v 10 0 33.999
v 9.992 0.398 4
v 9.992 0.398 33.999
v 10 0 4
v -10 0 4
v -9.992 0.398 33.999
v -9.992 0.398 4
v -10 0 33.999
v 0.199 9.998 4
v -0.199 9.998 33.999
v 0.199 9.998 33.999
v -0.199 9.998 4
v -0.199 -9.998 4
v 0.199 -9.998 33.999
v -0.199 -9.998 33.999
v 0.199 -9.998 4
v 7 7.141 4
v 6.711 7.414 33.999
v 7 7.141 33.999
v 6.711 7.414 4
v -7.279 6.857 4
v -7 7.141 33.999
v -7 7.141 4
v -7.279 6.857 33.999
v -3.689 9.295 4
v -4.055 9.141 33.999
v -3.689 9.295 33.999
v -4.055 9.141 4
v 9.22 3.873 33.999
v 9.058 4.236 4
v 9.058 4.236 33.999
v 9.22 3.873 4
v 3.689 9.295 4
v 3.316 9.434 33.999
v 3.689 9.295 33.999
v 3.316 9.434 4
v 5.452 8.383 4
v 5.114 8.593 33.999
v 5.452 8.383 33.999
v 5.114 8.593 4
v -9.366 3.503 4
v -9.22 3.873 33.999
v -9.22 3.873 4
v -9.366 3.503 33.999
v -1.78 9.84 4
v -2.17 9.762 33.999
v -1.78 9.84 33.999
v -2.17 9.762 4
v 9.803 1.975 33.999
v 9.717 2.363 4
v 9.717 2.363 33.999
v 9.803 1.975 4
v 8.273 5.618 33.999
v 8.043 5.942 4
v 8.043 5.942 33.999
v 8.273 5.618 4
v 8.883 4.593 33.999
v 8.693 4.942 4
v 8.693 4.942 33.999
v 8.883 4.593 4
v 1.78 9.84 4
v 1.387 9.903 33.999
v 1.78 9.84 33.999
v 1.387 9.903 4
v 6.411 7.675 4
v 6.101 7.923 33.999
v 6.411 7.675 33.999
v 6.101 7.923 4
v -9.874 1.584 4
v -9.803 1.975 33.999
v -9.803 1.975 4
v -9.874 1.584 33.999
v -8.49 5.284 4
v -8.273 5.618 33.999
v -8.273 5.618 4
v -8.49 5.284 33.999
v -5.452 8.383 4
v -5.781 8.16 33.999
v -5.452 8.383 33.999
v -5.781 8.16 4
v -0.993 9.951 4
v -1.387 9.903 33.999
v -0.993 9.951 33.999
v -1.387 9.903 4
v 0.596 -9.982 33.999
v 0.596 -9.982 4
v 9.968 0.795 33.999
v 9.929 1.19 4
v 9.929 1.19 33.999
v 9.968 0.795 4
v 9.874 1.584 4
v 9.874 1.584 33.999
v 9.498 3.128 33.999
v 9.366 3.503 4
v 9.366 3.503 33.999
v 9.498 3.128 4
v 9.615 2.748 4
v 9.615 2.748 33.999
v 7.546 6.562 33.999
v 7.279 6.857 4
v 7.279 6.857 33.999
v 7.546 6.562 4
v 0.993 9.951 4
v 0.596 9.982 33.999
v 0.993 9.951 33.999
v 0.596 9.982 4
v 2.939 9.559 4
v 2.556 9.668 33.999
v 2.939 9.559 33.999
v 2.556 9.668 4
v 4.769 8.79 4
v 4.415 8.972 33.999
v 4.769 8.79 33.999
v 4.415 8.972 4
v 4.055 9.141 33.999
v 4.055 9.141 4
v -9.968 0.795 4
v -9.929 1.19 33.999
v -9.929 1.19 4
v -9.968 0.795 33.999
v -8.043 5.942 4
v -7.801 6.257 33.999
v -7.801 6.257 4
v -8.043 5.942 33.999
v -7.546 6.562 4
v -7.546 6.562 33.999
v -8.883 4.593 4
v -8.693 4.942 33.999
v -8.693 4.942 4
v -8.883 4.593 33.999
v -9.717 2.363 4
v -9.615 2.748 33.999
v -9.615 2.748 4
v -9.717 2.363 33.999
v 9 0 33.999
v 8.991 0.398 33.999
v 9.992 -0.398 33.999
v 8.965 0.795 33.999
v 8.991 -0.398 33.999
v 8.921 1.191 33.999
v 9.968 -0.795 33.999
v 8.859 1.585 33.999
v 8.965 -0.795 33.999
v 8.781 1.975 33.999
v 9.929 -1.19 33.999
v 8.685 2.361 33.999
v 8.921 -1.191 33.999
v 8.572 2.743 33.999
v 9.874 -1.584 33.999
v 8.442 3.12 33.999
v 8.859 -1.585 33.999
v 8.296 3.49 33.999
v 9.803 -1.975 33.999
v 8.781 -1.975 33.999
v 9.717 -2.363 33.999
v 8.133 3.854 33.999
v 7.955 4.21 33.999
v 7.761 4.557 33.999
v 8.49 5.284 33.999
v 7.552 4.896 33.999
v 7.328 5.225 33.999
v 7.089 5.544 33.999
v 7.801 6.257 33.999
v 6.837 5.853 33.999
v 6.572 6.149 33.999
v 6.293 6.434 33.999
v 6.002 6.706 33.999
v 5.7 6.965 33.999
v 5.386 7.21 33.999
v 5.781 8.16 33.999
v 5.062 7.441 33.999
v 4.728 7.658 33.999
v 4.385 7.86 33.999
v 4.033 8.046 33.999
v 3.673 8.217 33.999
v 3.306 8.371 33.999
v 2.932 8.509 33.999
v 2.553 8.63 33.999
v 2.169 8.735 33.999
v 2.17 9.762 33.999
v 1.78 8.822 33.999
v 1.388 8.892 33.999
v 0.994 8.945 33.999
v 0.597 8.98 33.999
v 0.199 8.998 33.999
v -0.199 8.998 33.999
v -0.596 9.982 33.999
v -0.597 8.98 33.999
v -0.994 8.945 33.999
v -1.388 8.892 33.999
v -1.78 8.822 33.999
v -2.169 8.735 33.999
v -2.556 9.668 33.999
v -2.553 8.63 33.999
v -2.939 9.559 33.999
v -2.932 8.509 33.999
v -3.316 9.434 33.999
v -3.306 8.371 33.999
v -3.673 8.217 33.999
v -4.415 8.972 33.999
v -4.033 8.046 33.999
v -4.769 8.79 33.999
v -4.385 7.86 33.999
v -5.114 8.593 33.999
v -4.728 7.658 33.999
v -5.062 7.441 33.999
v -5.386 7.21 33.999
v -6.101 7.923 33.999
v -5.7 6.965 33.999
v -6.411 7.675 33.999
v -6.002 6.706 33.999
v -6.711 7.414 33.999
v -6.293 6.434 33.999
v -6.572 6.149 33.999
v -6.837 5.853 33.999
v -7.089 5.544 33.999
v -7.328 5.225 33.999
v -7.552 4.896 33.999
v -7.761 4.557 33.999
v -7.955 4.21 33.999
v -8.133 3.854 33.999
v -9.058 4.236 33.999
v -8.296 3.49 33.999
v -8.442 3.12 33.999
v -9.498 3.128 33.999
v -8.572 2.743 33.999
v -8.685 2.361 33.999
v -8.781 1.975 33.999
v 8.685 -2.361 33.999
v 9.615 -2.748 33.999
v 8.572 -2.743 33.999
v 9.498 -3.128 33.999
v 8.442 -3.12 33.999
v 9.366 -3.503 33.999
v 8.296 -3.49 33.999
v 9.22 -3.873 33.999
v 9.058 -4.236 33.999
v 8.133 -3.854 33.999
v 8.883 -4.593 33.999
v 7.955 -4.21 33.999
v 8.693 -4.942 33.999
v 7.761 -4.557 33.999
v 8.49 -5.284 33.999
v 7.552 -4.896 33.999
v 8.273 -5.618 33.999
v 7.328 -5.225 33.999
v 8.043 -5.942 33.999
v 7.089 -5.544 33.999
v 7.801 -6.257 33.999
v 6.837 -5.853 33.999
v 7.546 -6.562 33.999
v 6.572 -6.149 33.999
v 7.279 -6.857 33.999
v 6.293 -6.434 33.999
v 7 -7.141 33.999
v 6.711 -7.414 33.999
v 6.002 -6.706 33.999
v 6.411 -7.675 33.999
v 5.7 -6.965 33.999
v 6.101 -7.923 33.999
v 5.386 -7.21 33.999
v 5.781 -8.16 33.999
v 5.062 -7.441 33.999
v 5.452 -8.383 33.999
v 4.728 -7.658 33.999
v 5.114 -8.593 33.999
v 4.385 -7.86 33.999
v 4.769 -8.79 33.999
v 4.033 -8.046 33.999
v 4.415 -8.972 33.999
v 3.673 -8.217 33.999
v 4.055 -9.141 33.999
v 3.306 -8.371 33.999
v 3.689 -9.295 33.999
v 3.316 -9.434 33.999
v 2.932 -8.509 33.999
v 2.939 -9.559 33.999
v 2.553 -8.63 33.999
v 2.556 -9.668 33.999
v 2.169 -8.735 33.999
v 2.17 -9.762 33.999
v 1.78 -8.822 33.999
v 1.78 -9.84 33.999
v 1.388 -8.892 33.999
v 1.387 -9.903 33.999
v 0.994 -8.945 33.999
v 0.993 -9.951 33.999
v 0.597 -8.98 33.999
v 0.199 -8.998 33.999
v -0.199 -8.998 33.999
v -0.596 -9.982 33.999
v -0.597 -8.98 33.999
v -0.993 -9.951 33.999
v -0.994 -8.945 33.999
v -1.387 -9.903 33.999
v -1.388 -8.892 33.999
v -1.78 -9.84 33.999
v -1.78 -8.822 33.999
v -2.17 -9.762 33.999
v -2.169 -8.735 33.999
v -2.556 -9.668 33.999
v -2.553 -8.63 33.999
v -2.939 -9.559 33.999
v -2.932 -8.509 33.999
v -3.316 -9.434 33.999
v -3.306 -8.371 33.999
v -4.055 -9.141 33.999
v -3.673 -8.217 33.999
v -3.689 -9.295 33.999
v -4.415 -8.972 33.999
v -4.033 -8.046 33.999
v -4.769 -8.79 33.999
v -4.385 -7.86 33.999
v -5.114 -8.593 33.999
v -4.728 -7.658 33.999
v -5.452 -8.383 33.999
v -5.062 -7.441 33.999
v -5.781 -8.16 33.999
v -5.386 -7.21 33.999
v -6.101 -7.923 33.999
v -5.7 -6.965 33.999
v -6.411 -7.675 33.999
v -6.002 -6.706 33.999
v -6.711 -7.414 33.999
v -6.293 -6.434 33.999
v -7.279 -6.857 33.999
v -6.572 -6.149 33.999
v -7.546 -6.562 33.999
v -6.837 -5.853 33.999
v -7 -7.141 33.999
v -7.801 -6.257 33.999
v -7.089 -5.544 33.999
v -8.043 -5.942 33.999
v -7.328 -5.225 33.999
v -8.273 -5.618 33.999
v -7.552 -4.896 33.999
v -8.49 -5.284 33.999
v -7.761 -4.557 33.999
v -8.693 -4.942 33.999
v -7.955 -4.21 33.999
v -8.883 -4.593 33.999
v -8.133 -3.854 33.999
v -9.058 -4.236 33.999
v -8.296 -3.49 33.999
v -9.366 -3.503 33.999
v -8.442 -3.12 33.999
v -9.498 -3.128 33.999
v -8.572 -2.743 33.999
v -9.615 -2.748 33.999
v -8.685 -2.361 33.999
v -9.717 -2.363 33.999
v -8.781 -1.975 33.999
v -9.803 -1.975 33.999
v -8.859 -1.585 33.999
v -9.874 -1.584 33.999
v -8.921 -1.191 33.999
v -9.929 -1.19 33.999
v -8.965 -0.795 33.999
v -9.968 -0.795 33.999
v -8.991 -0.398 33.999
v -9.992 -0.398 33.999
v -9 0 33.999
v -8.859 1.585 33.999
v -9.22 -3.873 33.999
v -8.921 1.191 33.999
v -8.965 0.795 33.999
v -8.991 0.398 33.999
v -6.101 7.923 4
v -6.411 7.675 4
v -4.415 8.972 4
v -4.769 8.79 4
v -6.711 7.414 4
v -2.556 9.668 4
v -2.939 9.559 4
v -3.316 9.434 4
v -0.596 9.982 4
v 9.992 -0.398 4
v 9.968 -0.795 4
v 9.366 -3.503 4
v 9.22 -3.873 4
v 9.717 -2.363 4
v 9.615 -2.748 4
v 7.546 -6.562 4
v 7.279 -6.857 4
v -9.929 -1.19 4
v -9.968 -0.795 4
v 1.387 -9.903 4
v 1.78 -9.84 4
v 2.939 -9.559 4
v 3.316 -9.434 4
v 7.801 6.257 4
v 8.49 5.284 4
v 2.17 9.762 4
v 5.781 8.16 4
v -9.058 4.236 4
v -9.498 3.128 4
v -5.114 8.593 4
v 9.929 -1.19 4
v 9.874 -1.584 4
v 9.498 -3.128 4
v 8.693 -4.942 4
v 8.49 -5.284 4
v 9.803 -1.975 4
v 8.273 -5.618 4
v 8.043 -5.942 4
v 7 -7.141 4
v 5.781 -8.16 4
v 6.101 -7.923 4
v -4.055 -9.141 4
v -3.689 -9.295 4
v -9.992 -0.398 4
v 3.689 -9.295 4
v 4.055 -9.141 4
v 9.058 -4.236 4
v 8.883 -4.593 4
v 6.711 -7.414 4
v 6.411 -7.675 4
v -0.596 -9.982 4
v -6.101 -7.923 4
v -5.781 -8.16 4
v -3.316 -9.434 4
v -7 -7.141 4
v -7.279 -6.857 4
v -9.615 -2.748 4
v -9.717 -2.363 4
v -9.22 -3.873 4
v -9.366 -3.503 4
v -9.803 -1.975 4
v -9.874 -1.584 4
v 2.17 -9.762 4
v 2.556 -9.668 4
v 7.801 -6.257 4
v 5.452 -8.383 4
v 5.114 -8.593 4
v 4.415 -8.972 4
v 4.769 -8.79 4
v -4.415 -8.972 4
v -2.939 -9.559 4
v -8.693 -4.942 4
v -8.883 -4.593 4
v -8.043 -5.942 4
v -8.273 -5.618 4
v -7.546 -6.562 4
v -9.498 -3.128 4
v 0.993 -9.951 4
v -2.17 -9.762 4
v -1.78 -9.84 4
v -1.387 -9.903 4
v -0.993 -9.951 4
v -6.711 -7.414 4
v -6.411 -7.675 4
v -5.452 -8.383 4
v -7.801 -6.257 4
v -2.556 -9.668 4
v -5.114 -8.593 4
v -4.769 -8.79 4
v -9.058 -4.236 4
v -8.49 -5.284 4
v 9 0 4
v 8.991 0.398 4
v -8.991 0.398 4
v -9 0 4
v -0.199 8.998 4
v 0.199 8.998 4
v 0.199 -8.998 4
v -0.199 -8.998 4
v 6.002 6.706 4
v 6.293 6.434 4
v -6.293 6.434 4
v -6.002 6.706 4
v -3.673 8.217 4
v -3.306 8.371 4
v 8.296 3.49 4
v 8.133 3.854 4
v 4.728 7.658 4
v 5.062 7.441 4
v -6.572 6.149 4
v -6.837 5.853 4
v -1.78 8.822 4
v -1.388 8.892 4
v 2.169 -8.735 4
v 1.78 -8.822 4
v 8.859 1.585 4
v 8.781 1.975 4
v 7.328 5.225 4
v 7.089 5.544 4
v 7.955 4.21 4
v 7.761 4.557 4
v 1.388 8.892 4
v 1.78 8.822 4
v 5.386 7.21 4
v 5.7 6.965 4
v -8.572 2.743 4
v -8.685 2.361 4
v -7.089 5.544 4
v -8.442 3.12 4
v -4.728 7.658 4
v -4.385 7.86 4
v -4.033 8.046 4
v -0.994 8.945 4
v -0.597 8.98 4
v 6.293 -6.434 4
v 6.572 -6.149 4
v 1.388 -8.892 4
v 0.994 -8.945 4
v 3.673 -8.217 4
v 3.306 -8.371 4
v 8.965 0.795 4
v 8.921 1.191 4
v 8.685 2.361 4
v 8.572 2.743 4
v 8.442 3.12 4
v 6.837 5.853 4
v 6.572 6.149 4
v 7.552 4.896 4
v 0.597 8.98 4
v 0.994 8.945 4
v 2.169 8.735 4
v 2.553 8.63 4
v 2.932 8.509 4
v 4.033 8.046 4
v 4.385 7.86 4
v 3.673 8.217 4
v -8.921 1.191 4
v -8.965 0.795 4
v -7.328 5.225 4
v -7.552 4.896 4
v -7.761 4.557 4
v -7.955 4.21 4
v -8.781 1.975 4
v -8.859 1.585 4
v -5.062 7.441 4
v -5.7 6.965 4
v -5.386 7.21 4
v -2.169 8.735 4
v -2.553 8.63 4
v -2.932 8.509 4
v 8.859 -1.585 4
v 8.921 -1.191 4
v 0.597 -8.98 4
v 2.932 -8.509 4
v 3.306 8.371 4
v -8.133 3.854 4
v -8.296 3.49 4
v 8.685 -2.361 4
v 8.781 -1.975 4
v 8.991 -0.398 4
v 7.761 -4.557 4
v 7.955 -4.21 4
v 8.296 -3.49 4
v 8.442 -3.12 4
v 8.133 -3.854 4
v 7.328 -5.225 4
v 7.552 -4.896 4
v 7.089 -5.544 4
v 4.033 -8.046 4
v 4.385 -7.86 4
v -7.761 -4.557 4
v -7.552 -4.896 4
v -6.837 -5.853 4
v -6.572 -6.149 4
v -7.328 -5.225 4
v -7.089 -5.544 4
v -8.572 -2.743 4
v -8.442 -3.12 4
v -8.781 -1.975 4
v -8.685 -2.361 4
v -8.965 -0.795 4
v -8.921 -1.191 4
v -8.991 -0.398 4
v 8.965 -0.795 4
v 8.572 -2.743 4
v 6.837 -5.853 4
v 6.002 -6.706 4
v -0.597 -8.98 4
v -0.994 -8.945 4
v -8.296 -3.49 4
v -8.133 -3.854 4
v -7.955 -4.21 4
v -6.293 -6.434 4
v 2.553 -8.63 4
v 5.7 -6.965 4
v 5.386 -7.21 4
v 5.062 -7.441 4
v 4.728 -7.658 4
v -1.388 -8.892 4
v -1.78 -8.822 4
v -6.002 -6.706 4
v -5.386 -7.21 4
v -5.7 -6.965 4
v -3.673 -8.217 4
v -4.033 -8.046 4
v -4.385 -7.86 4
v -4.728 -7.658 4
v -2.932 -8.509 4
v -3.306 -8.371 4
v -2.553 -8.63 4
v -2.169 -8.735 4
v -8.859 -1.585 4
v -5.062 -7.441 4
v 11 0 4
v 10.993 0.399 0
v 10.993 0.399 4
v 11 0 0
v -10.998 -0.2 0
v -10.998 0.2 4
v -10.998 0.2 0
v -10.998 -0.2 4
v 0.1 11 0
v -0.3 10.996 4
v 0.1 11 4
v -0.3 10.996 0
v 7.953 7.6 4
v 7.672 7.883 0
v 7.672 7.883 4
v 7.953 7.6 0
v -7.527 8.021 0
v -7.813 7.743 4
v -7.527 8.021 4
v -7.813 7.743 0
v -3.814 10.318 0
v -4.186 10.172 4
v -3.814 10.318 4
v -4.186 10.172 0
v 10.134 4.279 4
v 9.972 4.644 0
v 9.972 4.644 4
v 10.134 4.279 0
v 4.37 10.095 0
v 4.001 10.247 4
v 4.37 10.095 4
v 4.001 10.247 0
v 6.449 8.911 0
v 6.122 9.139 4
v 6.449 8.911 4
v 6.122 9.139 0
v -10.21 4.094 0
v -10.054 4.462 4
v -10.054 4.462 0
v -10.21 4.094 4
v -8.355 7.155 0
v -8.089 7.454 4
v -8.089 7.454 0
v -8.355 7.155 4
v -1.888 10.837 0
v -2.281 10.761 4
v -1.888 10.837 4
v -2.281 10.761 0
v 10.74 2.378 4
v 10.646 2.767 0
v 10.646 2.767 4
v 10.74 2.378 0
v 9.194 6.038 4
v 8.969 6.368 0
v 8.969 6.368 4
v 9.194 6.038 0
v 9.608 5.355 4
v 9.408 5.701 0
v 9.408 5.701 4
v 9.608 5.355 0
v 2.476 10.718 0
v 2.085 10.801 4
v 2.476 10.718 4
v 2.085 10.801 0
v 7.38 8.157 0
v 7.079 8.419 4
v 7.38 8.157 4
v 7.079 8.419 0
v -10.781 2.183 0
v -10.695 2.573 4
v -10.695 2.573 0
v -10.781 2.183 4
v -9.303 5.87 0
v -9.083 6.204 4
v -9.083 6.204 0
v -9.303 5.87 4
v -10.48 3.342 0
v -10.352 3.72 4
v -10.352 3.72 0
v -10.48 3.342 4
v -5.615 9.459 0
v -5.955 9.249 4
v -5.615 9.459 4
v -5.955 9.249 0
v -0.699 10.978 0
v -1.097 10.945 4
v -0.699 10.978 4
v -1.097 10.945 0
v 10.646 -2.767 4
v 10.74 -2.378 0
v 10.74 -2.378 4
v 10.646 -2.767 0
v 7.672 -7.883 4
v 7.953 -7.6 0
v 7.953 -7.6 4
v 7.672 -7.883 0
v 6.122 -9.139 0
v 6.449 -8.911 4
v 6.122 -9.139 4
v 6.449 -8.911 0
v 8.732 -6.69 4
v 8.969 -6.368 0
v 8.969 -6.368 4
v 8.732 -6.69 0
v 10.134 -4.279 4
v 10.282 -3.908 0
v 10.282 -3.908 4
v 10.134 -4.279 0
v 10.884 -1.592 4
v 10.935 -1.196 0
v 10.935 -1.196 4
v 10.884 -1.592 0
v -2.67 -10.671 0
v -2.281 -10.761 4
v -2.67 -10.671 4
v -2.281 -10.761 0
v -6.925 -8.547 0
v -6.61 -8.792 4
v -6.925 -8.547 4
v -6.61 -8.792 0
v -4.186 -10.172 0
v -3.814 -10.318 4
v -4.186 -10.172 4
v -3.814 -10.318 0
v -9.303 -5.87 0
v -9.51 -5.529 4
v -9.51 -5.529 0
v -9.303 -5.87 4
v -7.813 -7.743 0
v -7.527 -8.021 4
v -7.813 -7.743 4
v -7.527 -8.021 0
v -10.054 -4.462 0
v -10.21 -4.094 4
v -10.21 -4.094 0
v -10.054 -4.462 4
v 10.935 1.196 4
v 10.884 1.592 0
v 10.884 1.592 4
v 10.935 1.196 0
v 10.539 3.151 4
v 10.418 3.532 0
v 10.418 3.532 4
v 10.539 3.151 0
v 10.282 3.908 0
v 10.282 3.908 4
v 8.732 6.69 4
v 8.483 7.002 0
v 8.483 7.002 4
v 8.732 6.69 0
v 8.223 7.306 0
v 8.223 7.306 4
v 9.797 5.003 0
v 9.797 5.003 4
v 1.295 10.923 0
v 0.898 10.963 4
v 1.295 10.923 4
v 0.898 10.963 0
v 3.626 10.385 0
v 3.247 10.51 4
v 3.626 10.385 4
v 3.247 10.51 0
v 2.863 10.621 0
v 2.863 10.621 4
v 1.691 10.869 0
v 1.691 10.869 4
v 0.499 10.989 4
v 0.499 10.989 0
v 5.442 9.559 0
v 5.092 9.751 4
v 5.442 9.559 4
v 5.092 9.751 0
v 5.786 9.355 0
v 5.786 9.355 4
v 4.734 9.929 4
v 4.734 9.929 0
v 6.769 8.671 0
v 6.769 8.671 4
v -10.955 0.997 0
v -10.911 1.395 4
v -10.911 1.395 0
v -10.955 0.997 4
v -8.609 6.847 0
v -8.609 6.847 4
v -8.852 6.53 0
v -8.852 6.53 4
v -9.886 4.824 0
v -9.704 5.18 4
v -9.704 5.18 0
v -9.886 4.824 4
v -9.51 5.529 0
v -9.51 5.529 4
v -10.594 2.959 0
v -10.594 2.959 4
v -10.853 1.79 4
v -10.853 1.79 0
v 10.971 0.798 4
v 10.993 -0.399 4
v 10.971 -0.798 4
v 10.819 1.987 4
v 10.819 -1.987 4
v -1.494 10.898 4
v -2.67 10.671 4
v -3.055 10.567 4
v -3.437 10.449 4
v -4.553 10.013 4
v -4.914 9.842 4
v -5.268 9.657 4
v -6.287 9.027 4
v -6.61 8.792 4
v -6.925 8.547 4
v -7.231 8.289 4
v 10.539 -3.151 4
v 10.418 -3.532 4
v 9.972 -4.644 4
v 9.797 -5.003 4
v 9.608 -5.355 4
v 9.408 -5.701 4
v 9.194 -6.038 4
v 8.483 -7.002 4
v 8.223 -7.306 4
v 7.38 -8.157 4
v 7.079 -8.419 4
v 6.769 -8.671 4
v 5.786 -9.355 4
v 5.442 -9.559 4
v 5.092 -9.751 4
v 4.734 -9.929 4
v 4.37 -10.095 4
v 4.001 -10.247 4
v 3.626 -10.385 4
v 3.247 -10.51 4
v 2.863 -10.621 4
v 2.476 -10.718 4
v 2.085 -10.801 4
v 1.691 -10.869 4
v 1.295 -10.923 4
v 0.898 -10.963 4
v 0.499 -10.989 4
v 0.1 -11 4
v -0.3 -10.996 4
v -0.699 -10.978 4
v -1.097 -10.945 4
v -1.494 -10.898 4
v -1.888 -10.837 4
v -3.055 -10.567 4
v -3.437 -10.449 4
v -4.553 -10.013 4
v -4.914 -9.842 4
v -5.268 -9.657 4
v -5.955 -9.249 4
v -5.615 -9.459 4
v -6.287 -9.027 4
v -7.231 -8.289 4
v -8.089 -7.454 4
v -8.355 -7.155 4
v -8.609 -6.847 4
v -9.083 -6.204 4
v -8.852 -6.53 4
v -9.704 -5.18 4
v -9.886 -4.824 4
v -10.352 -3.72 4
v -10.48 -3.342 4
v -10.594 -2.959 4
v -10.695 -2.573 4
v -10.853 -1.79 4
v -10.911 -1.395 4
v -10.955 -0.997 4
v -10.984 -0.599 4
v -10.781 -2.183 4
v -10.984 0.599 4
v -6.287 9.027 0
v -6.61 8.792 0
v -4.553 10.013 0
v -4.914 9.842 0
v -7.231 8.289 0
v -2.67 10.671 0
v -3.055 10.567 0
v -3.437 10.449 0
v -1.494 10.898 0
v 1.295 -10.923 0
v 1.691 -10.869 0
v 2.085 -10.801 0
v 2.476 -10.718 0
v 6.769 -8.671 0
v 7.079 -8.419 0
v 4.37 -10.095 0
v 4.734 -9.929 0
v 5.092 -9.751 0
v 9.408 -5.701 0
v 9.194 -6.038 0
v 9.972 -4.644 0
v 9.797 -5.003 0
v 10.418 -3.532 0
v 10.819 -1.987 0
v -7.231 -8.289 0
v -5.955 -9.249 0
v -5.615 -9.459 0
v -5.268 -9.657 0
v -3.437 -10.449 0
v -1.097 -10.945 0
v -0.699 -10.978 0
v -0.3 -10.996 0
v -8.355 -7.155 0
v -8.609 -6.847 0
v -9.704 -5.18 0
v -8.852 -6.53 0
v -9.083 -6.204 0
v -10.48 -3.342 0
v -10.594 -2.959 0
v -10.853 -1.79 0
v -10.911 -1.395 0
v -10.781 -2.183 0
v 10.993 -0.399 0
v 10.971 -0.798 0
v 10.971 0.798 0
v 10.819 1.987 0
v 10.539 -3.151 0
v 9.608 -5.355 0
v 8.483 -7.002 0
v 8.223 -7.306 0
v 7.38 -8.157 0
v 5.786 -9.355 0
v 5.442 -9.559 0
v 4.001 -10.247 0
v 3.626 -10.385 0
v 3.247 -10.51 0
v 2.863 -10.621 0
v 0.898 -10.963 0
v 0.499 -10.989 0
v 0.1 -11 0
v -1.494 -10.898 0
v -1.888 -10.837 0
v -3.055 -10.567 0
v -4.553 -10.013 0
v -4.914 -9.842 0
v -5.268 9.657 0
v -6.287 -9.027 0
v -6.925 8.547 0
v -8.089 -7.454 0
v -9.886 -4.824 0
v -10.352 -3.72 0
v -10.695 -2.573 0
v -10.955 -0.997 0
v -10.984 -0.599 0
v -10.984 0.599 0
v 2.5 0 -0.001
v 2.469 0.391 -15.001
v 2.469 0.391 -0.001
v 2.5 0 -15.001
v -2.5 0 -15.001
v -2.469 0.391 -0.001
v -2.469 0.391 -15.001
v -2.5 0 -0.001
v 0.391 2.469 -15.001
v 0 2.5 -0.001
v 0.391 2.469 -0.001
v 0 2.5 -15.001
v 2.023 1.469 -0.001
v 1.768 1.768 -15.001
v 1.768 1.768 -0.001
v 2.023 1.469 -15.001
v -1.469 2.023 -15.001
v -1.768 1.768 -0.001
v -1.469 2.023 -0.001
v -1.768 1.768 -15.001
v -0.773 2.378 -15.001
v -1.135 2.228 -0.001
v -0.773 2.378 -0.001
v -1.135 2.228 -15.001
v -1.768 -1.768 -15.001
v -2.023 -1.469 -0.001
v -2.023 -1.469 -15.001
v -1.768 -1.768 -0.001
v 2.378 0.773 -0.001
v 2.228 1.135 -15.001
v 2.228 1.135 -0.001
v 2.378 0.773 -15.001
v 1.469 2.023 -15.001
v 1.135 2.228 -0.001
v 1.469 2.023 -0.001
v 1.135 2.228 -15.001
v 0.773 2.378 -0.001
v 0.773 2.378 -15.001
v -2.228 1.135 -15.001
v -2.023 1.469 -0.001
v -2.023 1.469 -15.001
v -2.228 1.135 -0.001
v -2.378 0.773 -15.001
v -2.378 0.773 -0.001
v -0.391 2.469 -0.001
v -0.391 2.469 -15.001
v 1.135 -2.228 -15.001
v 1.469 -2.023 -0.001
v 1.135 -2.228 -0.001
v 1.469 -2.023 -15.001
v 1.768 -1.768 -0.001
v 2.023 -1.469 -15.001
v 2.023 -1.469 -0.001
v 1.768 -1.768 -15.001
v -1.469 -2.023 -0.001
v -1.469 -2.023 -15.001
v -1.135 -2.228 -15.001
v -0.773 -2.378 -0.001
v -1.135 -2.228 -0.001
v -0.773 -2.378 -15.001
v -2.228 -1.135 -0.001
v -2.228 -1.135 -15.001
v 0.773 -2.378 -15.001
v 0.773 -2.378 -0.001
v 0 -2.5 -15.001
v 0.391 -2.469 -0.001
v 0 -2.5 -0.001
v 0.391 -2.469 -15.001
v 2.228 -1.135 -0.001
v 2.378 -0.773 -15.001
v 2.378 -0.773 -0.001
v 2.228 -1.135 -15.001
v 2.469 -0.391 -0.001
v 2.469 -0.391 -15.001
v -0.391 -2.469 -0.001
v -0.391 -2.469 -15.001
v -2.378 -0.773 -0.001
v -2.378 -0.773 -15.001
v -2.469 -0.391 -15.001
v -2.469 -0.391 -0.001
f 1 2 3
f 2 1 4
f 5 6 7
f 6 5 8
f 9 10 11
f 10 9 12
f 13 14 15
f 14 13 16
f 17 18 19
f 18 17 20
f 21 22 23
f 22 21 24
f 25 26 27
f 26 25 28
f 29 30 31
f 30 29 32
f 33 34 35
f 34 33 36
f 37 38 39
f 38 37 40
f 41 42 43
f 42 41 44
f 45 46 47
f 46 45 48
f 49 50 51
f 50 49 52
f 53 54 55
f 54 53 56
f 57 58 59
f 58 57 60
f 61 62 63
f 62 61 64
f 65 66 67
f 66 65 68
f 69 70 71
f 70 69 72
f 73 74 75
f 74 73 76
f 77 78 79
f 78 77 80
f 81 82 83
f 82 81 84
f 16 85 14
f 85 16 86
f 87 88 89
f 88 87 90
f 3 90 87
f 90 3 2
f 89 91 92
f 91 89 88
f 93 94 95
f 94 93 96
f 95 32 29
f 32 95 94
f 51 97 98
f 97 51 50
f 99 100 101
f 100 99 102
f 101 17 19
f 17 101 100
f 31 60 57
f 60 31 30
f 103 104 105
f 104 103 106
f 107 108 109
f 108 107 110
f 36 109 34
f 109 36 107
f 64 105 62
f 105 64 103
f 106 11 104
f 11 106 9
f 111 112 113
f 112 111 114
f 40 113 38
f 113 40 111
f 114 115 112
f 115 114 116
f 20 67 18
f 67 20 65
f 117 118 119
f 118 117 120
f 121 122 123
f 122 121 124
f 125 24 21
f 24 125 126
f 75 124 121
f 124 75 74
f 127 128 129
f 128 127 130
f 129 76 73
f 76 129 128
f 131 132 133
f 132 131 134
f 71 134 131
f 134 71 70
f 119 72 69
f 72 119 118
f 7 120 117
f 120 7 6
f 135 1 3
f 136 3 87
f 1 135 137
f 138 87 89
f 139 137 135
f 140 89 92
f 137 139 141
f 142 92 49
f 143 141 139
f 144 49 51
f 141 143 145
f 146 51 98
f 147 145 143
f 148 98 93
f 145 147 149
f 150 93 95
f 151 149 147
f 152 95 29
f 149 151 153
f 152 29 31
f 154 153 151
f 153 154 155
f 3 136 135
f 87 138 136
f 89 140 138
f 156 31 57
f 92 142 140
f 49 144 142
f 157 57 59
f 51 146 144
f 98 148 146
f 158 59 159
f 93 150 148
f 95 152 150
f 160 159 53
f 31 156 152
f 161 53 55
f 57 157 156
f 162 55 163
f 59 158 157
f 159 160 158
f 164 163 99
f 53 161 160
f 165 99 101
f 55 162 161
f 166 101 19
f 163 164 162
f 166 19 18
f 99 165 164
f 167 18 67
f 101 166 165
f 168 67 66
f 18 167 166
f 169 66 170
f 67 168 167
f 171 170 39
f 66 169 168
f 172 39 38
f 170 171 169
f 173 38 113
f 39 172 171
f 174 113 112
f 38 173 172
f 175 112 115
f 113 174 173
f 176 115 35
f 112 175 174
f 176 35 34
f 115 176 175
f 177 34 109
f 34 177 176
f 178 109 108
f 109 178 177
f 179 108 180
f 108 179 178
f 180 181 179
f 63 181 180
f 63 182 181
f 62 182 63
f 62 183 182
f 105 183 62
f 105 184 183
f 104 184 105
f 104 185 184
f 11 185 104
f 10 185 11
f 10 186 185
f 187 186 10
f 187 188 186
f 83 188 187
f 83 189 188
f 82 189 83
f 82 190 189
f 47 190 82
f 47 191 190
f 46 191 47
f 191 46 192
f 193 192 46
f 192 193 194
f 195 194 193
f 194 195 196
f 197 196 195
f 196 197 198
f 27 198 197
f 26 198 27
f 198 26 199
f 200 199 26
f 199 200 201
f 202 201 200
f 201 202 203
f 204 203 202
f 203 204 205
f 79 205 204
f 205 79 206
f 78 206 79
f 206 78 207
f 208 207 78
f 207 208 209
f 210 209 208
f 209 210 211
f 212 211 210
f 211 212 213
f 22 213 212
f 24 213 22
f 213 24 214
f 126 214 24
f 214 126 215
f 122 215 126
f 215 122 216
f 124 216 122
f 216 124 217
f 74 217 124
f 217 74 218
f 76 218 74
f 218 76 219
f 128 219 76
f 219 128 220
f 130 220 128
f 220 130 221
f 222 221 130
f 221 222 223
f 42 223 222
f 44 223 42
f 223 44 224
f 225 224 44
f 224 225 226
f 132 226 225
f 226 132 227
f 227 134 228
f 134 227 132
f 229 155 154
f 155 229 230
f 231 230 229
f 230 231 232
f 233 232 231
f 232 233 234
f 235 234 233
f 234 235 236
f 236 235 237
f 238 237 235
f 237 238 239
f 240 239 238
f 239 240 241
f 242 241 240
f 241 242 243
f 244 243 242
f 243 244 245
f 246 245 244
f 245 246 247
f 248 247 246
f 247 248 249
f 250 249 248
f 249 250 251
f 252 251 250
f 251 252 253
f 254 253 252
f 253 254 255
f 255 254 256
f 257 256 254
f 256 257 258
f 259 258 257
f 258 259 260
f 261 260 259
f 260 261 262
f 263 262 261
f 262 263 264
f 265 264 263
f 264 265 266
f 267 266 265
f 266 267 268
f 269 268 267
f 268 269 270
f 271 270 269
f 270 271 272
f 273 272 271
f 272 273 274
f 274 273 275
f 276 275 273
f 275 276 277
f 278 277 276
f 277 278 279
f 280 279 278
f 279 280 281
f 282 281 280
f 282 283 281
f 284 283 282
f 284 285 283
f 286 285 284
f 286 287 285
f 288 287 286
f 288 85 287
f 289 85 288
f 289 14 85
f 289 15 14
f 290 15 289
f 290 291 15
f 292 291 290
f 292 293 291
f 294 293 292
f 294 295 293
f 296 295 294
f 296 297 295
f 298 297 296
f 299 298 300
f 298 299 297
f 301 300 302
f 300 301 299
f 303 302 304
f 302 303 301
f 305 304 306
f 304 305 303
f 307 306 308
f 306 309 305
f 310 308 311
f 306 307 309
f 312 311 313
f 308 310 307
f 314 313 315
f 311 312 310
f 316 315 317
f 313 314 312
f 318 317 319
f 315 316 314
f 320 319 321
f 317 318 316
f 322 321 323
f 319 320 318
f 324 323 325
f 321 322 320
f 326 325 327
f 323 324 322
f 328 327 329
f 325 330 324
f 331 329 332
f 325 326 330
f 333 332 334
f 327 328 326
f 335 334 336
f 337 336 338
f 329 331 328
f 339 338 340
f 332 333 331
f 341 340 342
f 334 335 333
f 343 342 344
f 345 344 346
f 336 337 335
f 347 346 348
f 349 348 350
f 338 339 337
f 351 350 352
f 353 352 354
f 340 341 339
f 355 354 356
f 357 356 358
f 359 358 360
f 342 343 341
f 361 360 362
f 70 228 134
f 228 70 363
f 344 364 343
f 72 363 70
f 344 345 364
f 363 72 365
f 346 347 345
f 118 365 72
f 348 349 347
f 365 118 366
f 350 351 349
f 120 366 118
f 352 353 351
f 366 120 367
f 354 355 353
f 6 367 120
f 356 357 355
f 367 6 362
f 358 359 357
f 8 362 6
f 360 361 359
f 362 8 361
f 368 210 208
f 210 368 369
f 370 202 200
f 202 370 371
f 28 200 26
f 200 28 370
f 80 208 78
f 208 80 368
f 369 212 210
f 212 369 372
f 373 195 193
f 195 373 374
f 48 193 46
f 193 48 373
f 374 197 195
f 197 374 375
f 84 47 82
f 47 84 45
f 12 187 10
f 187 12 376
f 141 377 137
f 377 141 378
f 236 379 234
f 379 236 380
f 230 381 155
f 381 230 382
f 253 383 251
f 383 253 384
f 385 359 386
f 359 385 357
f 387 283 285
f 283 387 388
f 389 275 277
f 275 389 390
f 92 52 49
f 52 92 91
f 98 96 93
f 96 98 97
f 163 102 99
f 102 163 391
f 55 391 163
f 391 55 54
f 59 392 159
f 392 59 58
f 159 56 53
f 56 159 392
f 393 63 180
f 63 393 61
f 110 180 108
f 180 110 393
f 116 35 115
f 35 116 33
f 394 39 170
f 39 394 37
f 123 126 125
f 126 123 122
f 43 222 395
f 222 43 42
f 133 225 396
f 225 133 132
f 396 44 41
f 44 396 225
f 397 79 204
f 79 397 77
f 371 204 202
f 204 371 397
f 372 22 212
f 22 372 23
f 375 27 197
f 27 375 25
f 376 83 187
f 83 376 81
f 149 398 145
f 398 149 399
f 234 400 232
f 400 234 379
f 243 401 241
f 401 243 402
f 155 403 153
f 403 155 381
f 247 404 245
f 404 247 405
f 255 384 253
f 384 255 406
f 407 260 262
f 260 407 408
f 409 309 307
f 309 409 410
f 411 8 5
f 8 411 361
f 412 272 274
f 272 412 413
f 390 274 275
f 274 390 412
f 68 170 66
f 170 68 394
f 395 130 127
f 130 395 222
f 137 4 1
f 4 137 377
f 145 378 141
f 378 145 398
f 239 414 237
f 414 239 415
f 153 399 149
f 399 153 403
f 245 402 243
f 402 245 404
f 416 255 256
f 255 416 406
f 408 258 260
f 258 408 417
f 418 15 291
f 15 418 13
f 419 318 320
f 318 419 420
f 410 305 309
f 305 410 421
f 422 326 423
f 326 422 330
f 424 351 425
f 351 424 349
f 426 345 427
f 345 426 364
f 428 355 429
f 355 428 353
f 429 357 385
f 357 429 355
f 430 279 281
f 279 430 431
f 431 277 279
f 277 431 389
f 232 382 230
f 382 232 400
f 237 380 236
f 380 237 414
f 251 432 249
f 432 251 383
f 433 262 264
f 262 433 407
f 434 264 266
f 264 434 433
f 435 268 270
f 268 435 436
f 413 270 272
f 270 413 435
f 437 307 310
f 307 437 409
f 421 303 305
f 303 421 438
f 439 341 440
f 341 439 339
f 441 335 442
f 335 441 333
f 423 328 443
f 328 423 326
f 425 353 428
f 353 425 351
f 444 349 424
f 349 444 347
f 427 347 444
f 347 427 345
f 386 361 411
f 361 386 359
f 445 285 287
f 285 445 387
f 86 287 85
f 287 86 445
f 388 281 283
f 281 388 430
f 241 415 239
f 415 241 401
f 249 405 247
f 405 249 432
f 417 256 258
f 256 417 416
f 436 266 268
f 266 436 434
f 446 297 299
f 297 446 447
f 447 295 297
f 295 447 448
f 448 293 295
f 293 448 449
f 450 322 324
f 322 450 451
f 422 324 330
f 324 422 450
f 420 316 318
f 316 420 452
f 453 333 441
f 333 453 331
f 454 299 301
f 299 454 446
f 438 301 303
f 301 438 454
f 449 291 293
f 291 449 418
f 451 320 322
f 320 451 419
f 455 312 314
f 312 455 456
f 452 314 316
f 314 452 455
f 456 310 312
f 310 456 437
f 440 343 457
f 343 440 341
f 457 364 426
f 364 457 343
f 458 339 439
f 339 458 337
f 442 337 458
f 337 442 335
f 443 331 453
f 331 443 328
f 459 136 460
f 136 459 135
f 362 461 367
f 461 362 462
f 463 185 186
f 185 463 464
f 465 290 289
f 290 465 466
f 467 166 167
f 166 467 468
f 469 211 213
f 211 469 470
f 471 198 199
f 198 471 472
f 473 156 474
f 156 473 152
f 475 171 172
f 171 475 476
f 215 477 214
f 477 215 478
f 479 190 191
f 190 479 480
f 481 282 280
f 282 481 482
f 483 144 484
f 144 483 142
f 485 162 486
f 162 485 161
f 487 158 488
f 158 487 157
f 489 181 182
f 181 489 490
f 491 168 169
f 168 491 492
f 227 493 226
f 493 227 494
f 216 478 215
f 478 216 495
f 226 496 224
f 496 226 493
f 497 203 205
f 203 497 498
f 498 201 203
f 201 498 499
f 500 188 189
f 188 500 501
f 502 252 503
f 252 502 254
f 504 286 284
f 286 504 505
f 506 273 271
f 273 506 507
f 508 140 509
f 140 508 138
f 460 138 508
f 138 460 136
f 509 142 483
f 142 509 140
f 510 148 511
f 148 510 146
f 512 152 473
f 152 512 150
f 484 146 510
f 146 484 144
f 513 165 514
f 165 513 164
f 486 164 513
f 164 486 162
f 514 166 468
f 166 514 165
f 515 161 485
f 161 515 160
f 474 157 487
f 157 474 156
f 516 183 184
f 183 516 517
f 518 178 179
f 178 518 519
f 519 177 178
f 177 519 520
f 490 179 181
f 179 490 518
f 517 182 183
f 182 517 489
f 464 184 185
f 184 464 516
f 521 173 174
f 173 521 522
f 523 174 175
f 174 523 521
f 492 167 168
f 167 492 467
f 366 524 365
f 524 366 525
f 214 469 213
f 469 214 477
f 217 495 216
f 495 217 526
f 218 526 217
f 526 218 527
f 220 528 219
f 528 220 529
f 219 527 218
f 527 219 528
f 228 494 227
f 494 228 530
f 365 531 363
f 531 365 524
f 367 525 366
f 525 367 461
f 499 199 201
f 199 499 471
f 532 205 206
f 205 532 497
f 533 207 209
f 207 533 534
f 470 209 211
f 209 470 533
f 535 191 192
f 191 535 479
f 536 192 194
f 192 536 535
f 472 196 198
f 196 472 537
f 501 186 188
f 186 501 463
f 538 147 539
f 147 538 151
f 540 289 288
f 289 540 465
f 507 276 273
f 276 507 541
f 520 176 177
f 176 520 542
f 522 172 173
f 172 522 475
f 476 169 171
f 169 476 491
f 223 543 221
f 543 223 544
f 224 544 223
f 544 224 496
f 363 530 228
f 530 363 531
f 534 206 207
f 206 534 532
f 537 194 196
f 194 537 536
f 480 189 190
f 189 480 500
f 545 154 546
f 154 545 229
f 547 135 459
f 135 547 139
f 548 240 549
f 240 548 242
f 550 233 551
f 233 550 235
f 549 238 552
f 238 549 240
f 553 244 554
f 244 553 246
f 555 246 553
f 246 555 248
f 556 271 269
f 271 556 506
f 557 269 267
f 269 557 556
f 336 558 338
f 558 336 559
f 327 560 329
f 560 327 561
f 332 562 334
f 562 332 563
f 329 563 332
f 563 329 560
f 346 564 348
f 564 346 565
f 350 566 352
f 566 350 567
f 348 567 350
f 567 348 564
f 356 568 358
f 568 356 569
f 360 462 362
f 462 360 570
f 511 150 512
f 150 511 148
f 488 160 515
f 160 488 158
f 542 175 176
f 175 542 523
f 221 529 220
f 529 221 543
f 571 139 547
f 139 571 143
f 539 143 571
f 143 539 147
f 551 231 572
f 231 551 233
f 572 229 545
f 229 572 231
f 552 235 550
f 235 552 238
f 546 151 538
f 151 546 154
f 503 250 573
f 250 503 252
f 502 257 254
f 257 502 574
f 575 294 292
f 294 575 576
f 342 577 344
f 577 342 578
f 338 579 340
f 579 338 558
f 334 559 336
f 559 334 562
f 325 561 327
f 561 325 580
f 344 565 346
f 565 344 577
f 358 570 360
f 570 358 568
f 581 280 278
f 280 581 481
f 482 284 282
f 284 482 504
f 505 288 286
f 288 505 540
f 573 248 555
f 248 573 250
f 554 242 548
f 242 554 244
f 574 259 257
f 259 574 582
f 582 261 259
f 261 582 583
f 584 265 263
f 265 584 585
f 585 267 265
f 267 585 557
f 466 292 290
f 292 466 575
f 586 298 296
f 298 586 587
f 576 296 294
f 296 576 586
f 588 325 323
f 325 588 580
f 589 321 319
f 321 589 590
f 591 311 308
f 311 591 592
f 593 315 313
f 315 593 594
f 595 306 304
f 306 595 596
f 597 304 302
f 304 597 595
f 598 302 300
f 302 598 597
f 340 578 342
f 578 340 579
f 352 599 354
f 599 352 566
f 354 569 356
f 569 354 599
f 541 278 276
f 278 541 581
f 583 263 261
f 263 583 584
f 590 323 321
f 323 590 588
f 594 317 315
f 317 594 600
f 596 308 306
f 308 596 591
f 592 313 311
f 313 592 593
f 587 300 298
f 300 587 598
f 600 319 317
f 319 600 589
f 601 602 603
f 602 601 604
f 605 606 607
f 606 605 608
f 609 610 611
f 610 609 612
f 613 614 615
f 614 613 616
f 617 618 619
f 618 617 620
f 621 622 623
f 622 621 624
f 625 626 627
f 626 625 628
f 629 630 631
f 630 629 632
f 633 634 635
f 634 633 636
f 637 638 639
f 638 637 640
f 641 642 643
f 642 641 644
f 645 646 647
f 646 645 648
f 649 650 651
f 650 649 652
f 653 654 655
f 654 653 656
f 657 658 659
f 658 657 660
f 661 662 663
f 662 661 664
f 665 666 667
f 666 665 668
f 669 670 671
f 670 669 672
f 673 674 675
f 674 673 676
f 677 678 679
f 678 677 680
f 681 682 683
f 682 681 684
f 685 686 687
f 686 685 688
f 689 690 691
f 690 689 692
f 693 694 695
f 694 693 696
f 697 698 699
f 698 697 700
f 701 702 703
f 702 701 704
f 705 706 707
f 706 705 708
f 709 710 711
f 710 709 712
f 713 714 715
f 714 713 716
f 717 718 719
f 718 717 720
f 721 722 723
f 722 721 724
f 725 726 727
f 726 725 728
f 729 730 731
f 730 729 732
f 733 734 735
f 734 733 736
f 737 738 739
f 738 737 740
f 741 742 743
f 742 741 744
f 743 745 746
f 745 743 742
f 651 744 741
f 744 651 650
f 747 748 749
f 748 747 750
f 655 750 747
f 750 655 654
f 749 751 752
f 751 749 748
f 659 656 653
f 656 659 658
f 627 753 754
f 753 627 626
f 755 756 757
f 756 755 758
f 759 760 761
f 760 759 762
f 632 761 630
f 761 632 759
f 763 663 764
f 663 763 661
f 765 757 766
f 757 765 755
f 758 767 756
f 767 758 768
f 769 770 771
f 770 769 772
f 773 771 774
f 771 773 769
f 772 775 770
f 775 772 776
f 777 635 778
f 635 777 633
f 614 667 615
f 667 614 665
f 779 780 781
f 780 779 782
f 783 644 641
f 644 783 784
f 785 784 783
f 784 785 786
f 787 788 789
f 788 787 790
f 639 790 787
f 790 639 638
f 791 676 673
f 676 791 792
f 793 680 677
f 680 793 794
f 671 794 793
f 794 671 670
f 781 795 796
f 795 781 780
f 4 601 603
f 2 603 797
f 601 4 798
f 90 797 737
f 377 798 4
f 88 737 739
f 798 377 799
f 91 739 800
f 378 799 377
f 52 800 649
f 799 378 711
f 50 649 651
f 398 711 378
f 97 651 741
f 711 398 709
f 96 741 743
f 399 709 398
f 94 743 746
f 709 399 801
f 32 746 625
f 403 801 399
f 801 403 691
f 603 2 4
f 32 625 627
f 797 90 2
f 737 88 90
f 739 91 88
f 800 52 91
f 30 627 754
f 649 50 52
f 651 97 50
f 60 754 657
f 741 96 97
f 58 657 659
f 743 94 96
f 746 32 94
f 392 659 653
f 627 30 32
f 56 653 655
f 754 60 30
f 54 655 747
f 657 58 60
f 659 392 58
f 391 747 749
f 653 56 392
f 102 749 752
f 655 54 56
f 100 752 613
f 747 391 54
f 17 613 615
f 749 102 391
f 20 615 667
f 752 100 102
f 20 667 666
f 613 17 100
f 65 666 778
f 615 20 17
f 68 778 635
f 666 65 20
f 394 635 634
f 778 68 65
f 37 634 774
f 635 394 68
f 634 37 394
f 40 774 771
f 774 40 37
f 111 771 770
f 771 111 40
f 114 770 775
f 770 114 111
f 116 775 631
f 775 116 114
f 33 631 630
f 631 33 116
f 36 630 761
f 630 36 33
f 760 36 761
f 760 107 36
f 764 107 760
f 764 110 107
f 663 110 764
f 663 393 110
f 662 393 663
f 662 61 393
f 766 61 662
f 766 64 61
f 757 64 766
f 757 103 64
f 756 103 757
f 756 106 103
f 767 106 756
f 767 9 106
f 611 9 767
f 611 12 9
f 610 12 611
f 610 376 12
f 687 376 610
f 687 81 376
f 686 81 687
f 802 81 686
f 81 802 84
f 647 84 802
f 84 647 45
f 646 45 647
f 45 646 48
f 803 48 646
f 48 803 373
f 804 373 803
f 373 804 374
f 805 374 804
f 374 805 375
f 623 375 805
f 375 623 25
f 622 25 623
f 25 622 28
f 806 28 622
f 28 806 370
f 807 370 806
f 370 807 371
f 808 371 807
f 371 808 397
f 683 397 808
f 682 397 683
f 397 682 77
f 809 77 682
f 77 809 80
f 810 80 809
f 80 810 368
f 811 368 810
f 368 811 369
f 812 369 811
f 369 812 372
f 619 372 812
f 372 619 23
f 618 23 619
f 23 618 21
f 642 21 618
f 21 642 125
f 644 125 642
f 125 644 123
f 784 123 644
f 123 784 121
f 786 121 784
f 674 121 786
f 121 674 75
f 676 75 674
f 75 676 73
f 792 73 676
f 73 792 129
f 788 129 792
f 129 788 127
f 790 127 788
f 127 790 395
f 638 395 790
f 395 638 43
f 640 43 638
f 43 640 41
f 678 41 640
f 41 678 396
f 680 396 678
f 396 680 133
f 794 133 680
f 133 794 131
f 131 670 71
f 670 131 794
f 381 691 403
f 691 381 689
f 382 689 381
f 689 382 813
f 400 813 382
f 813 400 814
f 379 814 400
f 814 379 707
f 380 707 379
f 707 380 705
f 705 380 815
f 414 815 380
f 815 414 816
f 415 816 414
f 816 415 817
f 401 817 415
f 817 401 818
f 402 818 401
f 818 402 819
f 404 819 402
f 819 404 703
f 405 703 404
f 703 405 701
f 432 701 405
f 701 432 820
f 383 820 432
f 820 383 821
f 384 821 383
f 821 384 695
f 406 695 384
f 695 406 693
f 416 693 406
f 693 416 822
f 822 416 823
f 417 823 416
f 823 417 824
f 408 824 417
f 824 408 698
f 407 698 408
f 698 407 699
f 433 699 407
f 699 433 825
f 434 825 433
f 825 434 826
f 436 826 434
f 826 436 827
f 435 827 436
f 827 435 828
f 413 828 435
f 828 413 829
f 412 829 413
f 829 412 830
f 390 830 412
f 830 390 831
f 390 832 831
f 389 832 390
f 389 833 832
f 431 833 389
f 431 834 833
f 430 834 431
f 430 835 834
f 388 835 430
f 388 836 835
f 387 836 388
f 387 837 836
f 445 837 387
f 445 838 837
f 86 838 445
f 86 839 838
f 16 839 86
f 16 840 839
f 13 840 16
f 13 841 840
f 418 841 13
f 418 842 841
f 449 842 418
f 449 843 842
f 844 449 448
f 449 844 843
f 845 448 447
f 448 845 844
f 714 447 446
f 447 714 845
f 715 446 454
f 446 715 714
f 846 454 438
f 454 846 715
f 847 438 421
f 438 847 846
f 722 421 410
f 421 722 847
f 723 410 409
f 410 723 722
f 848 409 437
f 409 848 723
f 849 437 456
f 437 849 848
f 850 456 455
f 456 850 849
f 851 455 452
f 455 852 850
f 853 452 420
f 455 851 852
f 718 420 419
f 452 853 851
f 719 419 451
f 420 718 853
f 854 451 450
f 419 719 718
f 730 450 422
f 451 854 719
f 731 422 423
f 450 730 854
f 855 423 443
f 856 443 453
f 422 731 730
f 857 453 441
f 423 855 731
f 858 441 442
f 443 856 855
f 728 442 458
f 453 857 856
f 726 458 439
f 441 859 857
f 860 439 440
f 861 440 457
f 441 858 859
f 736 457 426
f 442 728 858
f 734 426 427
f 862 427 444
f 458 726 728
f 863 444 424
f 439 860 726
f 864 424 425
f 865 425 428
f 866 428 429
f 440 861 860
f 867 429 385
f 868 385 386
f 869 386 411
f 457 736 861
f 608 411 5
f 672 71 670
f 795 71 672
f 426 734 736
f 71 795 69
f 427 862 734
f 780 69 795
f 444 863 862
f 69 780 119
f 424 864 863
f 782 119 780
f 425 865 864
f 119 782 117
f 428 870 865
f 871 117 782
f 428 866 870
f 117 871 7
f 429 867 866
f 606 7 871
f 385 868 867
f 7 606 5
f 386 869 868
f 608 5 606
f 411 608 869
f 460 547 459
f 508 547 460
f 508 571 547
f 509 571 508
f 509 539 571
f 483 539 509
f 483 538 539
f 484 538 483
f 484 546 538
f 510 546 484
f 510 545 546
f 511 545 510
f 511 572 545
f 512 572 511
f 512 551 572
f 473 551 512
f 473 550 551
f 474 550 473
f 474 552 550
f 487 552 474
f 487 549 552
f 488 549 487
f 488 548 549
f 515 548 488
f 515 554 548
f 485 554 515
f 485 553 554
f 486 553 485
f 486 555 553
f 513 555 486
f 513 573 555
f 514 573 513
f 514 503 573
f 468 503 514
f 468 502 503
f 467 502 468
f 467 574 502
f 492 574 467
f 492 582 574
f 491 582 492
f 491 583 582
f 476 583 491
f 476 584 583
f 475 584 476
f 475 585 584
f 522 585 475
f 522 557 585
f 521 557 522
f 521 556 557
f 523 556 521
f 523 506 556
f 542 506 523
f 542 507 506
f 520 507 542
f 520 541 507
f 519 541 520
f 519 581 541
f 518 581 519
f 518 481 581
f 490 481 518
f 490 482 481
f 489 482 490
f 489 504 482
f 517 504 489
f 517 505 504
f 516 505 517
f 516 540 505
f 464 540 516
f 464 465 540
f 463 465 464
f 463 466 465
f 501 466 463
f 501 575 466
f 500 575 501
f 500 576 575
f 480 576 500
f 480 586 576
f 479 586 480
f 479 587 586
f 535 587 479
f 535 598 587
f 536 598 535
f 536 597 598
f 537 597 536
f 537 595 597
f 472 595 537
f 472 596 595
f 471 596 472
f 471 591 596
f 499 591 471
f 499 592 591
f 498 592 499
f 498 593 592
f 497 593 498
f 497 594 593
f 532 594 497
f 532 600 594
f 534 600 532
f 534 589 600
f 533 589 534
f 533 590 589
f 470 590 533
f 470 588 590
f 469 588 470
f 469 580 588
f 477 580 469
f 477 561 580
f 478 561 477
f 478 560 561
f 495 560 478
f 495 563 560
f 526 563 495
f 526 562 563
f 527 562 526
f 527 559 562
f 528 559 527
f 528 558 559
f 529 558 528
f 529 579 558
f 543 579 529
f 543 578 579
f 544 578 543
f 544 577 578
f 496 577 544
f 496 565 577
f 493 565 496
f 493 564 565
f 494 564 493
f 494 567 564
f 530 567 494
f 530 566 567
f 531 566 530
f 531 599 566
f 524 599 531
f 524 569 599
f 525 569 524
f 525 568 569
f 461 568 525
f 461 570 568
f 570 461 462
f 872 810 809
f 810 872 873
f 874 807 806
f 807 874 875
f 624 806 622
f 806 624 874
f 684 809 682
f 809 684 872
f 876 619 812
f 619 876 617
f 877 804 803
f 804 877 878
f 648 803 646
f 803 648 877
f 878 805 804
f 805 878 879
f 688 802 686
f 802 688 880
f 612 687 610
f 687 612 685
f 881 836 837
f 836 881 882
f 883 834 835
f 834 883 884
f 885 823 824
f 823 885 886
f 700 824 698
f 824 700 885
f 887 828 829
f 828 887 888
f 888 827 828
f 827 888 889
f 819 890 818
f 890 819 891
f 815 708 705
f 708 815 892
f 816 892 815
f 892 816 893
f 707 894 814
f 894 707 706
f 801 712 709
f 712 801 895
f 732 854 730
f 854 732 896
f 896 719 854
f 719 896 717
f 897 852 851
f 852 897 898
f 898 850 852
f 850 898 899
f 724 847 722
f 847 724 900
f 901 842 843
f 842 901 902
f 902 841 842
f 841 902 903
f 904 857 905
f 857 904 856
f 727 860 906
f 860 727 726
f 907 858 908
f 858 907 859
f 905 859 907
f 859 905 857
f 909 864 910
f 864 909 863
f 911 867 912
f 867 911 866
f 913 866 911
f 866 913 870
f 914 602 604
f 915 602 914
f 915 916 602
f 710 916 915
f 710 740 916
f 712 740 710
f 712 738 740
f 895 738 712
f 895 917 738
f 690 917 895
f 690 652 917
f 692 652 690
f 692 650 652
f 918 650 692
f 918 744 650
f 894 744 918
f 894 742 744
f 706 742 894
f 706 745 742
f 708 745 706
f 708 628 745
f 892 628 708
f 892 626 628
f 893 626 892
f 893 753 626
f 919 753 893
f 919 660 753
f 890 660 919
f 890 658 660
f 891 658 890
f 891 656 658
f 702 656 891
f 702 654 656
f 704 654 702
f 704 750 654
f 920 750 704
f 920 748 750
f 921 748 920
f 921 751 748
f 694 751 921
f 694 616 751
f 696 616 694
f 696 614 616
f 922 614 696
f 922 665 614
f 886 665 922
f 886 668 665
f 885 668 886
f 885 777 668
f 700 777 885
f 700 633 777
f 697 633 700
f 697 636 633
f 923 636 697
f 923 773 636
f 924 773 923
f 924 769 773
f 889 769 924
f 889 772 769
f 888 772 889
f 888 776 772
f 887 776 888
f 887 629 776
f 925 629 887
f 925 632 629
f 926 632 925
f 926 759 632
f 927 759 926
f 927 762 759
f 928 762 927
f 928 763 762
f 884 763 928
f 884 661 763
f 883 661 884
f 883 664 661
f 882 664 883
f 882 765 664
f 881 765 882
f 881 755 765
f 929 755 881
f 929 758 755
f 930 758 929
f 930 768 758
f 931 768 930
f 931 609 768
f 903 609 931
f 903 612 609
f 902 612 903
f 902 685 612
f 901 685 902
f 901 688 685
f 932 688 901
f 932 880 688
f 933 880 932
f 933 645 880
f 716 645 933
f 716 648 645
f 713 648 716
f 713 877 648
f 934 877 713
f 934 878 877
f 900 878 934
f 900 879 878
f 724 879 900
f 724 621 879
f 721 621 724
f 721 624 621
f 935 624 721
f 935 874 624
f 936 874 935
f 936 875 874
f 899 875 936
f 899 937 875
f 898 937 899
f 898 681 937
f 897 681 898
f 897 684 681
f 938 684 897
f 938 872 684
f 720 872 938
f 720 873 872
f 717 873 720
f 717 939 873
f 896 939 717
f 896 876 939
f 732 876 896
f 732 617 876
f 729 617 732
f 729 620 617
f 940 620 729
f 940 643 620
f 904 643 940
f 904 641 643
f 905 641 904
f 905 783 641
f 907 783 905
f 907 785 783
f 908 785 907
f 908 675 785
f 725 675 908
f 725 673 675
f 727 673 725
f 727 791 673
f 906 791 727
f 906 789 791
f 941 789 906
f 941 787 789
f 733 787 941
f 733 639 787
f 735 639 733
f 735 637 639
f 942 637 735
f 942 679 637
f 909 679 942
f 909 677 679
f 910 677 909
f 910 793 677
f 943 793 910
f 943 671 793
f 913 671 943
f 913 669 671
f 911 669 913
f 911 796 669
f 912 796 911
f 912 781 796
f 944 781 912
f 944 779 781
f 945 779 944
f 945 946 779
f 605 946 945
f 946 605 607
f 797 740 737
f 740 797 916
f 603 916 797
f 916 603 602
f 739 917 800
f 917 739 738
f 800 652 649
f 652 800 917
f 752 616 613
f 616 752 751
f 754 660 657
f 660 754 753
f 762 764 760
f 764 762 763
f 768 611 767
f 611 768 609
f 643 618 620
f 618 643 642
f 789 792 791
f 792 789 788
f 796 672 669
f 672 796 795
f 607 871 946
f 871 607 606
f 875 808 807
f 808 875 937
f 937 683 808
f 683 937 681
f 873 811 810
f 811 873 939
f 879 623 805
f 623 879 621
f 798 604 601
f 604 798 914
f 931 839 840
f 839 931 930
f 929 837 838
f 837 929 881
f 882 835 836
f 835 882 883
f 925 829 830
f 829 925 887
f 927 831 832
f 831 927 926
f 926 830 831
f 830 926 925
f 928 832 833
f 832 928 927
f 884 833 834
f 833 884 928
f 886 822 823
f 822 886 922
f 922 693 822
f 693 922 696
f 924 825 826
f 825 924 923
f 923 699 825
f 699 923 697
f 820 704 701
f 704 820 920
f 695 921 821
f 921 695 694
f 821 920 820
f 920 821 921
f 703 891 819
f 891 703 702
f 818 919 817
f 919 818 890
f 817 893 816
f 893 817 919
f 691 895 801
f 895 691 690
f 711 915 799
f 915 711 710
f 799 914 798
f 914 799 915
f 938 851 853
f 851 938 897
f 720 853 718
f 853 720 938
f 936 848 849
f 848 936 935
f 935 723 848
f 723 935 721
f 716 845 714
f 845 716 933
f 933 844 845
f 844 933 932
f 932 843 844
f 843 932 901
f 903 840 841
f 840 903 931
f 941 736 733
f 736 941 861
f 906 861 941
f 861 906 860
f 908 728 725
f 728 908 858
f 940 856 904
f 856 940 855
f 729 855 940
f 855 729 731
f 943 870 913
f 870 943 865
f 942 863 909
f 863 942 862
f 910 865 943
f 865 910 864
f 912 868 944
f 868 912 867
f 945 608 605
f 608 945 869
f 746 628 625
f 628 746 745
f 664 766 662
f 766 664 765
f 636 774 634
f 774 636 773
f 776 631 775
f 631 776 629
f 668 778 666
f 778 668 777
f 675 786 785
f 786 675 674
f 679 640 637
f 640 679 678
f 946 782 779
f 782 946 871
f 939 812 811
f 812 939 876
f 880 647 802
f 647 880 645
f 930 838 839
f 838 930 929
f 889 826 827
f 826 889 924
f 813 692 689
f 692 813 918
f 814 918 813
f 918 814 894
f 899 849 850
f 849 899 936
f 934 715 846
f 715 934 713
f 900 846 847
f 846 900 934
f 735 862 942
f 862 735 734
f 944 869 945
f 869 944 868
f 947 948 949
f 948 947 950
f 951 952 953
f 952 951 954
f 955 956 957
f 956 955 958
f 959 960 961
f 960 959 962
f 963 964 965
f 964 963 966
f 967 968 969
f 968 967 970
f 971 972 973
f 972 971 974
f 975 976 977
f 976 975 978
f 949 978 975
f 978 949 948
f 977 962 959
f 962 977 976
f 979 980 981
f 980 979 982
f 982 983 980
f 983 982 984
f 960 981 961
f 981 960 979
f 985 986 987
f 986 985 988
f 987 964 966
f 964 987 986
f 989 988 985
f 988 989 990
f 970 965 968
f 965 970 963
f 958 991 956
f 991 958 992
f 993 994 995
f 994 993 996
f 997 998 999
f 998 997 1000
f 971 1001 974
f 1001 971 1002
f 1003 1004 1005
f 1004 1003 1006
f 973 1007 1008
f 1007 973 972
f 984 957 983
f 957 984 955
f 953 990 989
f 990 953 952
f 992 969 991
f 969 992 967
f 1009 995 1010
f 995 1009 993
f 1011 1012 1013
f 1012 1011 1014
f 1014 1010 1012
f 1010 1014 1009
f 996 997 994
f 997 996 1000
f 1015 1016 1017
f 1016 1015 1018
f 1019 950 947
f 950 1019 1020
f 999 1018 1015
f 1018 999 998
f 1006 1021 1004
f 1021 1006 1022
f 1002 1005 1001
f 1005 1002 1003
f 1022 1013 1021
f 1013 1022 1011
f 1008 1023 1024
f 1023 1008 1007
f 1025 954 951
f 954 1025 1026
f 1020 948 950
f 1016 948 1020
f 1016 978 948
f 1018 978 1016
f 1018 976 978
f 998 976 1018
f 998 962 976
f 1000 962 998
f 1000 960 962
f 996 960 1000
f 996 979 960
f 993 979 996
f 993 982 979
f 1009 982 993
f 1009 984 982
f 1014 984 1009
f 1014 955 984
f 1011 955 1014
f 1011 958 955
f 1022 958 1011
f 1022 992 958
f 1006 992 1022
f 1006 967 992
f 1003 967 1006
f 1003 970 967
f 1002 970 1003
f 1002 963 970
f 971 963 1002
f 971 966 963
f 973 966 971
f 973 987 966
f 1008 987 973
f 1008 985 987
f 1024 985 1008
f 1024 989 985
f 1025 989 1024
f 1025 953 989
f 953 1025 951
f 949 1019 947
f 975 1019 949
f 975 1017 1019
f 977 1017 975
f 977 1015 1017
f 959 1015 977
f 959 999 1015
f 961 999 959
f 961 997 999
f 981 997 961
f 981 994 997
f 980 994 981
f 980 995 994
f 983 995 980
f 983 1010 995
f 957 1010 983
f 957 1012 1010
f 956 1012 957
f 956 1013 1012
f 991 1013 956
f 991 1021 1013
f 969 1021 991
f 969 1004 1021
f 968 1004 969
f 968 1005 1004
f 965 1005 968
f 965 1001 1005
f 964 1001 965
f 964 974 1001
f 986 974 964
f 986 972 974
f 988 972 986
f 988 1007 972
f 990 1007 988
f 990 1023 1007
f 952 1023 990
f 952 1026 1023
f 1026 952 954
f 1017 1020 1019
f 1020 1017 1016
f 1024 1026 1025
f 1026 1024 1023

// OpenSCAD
$fa = 1;
$fs = 0.4;
merge_offset=0.001;

// post_insert
post_insert_radius=2.5;
post_insert_diameter=2*post_insert_radius;
post_insert_height=15;

// The post_insert that gets inserted into the tube
module post_insert() {
    cylinder(h=post_insert_height,r=post_insert_radius);
}
//post_insert();

star_stem_radius=9;
star_stem_diameter=2*star_stem_radius;
star_stem_height=30;
// The star stem is padded to be subtracted from the receiver
module star_stem() {
    translate([0,0,-1]) {
     cylinder(h=star_stem_height+2,r=star_stem_radius);
    }    
    
}
//star_stem();


star_stem_receiver_radius=10;
star_stem_receiver_diameter=2*star_stem_receiver_radius;
star_stem_receiver_height=30;
module star_stem_receiver() {
    difference() {
        cylinder(h=star_stem_receiver_height,r=star_stem_receiver_radius);
        star_stem();
    }
}
// star_stem_receiver();


light_stop_radius=11;
light_stop_diameter=2*light_stop_radius;
light_stop_height=4;
// The star stem is padded to be subtracted from the receiver
module light_stop() {
  cylinder(h=light_stop_height,r=light_stop_radius);
}
//light_stop();


light_stop();
translate([0,0,light_stop_height-merge_offset]) { star_stem_receiver(); }
translate([0,0,-post_insert_height-merge_offset]) { post_insert(); }
